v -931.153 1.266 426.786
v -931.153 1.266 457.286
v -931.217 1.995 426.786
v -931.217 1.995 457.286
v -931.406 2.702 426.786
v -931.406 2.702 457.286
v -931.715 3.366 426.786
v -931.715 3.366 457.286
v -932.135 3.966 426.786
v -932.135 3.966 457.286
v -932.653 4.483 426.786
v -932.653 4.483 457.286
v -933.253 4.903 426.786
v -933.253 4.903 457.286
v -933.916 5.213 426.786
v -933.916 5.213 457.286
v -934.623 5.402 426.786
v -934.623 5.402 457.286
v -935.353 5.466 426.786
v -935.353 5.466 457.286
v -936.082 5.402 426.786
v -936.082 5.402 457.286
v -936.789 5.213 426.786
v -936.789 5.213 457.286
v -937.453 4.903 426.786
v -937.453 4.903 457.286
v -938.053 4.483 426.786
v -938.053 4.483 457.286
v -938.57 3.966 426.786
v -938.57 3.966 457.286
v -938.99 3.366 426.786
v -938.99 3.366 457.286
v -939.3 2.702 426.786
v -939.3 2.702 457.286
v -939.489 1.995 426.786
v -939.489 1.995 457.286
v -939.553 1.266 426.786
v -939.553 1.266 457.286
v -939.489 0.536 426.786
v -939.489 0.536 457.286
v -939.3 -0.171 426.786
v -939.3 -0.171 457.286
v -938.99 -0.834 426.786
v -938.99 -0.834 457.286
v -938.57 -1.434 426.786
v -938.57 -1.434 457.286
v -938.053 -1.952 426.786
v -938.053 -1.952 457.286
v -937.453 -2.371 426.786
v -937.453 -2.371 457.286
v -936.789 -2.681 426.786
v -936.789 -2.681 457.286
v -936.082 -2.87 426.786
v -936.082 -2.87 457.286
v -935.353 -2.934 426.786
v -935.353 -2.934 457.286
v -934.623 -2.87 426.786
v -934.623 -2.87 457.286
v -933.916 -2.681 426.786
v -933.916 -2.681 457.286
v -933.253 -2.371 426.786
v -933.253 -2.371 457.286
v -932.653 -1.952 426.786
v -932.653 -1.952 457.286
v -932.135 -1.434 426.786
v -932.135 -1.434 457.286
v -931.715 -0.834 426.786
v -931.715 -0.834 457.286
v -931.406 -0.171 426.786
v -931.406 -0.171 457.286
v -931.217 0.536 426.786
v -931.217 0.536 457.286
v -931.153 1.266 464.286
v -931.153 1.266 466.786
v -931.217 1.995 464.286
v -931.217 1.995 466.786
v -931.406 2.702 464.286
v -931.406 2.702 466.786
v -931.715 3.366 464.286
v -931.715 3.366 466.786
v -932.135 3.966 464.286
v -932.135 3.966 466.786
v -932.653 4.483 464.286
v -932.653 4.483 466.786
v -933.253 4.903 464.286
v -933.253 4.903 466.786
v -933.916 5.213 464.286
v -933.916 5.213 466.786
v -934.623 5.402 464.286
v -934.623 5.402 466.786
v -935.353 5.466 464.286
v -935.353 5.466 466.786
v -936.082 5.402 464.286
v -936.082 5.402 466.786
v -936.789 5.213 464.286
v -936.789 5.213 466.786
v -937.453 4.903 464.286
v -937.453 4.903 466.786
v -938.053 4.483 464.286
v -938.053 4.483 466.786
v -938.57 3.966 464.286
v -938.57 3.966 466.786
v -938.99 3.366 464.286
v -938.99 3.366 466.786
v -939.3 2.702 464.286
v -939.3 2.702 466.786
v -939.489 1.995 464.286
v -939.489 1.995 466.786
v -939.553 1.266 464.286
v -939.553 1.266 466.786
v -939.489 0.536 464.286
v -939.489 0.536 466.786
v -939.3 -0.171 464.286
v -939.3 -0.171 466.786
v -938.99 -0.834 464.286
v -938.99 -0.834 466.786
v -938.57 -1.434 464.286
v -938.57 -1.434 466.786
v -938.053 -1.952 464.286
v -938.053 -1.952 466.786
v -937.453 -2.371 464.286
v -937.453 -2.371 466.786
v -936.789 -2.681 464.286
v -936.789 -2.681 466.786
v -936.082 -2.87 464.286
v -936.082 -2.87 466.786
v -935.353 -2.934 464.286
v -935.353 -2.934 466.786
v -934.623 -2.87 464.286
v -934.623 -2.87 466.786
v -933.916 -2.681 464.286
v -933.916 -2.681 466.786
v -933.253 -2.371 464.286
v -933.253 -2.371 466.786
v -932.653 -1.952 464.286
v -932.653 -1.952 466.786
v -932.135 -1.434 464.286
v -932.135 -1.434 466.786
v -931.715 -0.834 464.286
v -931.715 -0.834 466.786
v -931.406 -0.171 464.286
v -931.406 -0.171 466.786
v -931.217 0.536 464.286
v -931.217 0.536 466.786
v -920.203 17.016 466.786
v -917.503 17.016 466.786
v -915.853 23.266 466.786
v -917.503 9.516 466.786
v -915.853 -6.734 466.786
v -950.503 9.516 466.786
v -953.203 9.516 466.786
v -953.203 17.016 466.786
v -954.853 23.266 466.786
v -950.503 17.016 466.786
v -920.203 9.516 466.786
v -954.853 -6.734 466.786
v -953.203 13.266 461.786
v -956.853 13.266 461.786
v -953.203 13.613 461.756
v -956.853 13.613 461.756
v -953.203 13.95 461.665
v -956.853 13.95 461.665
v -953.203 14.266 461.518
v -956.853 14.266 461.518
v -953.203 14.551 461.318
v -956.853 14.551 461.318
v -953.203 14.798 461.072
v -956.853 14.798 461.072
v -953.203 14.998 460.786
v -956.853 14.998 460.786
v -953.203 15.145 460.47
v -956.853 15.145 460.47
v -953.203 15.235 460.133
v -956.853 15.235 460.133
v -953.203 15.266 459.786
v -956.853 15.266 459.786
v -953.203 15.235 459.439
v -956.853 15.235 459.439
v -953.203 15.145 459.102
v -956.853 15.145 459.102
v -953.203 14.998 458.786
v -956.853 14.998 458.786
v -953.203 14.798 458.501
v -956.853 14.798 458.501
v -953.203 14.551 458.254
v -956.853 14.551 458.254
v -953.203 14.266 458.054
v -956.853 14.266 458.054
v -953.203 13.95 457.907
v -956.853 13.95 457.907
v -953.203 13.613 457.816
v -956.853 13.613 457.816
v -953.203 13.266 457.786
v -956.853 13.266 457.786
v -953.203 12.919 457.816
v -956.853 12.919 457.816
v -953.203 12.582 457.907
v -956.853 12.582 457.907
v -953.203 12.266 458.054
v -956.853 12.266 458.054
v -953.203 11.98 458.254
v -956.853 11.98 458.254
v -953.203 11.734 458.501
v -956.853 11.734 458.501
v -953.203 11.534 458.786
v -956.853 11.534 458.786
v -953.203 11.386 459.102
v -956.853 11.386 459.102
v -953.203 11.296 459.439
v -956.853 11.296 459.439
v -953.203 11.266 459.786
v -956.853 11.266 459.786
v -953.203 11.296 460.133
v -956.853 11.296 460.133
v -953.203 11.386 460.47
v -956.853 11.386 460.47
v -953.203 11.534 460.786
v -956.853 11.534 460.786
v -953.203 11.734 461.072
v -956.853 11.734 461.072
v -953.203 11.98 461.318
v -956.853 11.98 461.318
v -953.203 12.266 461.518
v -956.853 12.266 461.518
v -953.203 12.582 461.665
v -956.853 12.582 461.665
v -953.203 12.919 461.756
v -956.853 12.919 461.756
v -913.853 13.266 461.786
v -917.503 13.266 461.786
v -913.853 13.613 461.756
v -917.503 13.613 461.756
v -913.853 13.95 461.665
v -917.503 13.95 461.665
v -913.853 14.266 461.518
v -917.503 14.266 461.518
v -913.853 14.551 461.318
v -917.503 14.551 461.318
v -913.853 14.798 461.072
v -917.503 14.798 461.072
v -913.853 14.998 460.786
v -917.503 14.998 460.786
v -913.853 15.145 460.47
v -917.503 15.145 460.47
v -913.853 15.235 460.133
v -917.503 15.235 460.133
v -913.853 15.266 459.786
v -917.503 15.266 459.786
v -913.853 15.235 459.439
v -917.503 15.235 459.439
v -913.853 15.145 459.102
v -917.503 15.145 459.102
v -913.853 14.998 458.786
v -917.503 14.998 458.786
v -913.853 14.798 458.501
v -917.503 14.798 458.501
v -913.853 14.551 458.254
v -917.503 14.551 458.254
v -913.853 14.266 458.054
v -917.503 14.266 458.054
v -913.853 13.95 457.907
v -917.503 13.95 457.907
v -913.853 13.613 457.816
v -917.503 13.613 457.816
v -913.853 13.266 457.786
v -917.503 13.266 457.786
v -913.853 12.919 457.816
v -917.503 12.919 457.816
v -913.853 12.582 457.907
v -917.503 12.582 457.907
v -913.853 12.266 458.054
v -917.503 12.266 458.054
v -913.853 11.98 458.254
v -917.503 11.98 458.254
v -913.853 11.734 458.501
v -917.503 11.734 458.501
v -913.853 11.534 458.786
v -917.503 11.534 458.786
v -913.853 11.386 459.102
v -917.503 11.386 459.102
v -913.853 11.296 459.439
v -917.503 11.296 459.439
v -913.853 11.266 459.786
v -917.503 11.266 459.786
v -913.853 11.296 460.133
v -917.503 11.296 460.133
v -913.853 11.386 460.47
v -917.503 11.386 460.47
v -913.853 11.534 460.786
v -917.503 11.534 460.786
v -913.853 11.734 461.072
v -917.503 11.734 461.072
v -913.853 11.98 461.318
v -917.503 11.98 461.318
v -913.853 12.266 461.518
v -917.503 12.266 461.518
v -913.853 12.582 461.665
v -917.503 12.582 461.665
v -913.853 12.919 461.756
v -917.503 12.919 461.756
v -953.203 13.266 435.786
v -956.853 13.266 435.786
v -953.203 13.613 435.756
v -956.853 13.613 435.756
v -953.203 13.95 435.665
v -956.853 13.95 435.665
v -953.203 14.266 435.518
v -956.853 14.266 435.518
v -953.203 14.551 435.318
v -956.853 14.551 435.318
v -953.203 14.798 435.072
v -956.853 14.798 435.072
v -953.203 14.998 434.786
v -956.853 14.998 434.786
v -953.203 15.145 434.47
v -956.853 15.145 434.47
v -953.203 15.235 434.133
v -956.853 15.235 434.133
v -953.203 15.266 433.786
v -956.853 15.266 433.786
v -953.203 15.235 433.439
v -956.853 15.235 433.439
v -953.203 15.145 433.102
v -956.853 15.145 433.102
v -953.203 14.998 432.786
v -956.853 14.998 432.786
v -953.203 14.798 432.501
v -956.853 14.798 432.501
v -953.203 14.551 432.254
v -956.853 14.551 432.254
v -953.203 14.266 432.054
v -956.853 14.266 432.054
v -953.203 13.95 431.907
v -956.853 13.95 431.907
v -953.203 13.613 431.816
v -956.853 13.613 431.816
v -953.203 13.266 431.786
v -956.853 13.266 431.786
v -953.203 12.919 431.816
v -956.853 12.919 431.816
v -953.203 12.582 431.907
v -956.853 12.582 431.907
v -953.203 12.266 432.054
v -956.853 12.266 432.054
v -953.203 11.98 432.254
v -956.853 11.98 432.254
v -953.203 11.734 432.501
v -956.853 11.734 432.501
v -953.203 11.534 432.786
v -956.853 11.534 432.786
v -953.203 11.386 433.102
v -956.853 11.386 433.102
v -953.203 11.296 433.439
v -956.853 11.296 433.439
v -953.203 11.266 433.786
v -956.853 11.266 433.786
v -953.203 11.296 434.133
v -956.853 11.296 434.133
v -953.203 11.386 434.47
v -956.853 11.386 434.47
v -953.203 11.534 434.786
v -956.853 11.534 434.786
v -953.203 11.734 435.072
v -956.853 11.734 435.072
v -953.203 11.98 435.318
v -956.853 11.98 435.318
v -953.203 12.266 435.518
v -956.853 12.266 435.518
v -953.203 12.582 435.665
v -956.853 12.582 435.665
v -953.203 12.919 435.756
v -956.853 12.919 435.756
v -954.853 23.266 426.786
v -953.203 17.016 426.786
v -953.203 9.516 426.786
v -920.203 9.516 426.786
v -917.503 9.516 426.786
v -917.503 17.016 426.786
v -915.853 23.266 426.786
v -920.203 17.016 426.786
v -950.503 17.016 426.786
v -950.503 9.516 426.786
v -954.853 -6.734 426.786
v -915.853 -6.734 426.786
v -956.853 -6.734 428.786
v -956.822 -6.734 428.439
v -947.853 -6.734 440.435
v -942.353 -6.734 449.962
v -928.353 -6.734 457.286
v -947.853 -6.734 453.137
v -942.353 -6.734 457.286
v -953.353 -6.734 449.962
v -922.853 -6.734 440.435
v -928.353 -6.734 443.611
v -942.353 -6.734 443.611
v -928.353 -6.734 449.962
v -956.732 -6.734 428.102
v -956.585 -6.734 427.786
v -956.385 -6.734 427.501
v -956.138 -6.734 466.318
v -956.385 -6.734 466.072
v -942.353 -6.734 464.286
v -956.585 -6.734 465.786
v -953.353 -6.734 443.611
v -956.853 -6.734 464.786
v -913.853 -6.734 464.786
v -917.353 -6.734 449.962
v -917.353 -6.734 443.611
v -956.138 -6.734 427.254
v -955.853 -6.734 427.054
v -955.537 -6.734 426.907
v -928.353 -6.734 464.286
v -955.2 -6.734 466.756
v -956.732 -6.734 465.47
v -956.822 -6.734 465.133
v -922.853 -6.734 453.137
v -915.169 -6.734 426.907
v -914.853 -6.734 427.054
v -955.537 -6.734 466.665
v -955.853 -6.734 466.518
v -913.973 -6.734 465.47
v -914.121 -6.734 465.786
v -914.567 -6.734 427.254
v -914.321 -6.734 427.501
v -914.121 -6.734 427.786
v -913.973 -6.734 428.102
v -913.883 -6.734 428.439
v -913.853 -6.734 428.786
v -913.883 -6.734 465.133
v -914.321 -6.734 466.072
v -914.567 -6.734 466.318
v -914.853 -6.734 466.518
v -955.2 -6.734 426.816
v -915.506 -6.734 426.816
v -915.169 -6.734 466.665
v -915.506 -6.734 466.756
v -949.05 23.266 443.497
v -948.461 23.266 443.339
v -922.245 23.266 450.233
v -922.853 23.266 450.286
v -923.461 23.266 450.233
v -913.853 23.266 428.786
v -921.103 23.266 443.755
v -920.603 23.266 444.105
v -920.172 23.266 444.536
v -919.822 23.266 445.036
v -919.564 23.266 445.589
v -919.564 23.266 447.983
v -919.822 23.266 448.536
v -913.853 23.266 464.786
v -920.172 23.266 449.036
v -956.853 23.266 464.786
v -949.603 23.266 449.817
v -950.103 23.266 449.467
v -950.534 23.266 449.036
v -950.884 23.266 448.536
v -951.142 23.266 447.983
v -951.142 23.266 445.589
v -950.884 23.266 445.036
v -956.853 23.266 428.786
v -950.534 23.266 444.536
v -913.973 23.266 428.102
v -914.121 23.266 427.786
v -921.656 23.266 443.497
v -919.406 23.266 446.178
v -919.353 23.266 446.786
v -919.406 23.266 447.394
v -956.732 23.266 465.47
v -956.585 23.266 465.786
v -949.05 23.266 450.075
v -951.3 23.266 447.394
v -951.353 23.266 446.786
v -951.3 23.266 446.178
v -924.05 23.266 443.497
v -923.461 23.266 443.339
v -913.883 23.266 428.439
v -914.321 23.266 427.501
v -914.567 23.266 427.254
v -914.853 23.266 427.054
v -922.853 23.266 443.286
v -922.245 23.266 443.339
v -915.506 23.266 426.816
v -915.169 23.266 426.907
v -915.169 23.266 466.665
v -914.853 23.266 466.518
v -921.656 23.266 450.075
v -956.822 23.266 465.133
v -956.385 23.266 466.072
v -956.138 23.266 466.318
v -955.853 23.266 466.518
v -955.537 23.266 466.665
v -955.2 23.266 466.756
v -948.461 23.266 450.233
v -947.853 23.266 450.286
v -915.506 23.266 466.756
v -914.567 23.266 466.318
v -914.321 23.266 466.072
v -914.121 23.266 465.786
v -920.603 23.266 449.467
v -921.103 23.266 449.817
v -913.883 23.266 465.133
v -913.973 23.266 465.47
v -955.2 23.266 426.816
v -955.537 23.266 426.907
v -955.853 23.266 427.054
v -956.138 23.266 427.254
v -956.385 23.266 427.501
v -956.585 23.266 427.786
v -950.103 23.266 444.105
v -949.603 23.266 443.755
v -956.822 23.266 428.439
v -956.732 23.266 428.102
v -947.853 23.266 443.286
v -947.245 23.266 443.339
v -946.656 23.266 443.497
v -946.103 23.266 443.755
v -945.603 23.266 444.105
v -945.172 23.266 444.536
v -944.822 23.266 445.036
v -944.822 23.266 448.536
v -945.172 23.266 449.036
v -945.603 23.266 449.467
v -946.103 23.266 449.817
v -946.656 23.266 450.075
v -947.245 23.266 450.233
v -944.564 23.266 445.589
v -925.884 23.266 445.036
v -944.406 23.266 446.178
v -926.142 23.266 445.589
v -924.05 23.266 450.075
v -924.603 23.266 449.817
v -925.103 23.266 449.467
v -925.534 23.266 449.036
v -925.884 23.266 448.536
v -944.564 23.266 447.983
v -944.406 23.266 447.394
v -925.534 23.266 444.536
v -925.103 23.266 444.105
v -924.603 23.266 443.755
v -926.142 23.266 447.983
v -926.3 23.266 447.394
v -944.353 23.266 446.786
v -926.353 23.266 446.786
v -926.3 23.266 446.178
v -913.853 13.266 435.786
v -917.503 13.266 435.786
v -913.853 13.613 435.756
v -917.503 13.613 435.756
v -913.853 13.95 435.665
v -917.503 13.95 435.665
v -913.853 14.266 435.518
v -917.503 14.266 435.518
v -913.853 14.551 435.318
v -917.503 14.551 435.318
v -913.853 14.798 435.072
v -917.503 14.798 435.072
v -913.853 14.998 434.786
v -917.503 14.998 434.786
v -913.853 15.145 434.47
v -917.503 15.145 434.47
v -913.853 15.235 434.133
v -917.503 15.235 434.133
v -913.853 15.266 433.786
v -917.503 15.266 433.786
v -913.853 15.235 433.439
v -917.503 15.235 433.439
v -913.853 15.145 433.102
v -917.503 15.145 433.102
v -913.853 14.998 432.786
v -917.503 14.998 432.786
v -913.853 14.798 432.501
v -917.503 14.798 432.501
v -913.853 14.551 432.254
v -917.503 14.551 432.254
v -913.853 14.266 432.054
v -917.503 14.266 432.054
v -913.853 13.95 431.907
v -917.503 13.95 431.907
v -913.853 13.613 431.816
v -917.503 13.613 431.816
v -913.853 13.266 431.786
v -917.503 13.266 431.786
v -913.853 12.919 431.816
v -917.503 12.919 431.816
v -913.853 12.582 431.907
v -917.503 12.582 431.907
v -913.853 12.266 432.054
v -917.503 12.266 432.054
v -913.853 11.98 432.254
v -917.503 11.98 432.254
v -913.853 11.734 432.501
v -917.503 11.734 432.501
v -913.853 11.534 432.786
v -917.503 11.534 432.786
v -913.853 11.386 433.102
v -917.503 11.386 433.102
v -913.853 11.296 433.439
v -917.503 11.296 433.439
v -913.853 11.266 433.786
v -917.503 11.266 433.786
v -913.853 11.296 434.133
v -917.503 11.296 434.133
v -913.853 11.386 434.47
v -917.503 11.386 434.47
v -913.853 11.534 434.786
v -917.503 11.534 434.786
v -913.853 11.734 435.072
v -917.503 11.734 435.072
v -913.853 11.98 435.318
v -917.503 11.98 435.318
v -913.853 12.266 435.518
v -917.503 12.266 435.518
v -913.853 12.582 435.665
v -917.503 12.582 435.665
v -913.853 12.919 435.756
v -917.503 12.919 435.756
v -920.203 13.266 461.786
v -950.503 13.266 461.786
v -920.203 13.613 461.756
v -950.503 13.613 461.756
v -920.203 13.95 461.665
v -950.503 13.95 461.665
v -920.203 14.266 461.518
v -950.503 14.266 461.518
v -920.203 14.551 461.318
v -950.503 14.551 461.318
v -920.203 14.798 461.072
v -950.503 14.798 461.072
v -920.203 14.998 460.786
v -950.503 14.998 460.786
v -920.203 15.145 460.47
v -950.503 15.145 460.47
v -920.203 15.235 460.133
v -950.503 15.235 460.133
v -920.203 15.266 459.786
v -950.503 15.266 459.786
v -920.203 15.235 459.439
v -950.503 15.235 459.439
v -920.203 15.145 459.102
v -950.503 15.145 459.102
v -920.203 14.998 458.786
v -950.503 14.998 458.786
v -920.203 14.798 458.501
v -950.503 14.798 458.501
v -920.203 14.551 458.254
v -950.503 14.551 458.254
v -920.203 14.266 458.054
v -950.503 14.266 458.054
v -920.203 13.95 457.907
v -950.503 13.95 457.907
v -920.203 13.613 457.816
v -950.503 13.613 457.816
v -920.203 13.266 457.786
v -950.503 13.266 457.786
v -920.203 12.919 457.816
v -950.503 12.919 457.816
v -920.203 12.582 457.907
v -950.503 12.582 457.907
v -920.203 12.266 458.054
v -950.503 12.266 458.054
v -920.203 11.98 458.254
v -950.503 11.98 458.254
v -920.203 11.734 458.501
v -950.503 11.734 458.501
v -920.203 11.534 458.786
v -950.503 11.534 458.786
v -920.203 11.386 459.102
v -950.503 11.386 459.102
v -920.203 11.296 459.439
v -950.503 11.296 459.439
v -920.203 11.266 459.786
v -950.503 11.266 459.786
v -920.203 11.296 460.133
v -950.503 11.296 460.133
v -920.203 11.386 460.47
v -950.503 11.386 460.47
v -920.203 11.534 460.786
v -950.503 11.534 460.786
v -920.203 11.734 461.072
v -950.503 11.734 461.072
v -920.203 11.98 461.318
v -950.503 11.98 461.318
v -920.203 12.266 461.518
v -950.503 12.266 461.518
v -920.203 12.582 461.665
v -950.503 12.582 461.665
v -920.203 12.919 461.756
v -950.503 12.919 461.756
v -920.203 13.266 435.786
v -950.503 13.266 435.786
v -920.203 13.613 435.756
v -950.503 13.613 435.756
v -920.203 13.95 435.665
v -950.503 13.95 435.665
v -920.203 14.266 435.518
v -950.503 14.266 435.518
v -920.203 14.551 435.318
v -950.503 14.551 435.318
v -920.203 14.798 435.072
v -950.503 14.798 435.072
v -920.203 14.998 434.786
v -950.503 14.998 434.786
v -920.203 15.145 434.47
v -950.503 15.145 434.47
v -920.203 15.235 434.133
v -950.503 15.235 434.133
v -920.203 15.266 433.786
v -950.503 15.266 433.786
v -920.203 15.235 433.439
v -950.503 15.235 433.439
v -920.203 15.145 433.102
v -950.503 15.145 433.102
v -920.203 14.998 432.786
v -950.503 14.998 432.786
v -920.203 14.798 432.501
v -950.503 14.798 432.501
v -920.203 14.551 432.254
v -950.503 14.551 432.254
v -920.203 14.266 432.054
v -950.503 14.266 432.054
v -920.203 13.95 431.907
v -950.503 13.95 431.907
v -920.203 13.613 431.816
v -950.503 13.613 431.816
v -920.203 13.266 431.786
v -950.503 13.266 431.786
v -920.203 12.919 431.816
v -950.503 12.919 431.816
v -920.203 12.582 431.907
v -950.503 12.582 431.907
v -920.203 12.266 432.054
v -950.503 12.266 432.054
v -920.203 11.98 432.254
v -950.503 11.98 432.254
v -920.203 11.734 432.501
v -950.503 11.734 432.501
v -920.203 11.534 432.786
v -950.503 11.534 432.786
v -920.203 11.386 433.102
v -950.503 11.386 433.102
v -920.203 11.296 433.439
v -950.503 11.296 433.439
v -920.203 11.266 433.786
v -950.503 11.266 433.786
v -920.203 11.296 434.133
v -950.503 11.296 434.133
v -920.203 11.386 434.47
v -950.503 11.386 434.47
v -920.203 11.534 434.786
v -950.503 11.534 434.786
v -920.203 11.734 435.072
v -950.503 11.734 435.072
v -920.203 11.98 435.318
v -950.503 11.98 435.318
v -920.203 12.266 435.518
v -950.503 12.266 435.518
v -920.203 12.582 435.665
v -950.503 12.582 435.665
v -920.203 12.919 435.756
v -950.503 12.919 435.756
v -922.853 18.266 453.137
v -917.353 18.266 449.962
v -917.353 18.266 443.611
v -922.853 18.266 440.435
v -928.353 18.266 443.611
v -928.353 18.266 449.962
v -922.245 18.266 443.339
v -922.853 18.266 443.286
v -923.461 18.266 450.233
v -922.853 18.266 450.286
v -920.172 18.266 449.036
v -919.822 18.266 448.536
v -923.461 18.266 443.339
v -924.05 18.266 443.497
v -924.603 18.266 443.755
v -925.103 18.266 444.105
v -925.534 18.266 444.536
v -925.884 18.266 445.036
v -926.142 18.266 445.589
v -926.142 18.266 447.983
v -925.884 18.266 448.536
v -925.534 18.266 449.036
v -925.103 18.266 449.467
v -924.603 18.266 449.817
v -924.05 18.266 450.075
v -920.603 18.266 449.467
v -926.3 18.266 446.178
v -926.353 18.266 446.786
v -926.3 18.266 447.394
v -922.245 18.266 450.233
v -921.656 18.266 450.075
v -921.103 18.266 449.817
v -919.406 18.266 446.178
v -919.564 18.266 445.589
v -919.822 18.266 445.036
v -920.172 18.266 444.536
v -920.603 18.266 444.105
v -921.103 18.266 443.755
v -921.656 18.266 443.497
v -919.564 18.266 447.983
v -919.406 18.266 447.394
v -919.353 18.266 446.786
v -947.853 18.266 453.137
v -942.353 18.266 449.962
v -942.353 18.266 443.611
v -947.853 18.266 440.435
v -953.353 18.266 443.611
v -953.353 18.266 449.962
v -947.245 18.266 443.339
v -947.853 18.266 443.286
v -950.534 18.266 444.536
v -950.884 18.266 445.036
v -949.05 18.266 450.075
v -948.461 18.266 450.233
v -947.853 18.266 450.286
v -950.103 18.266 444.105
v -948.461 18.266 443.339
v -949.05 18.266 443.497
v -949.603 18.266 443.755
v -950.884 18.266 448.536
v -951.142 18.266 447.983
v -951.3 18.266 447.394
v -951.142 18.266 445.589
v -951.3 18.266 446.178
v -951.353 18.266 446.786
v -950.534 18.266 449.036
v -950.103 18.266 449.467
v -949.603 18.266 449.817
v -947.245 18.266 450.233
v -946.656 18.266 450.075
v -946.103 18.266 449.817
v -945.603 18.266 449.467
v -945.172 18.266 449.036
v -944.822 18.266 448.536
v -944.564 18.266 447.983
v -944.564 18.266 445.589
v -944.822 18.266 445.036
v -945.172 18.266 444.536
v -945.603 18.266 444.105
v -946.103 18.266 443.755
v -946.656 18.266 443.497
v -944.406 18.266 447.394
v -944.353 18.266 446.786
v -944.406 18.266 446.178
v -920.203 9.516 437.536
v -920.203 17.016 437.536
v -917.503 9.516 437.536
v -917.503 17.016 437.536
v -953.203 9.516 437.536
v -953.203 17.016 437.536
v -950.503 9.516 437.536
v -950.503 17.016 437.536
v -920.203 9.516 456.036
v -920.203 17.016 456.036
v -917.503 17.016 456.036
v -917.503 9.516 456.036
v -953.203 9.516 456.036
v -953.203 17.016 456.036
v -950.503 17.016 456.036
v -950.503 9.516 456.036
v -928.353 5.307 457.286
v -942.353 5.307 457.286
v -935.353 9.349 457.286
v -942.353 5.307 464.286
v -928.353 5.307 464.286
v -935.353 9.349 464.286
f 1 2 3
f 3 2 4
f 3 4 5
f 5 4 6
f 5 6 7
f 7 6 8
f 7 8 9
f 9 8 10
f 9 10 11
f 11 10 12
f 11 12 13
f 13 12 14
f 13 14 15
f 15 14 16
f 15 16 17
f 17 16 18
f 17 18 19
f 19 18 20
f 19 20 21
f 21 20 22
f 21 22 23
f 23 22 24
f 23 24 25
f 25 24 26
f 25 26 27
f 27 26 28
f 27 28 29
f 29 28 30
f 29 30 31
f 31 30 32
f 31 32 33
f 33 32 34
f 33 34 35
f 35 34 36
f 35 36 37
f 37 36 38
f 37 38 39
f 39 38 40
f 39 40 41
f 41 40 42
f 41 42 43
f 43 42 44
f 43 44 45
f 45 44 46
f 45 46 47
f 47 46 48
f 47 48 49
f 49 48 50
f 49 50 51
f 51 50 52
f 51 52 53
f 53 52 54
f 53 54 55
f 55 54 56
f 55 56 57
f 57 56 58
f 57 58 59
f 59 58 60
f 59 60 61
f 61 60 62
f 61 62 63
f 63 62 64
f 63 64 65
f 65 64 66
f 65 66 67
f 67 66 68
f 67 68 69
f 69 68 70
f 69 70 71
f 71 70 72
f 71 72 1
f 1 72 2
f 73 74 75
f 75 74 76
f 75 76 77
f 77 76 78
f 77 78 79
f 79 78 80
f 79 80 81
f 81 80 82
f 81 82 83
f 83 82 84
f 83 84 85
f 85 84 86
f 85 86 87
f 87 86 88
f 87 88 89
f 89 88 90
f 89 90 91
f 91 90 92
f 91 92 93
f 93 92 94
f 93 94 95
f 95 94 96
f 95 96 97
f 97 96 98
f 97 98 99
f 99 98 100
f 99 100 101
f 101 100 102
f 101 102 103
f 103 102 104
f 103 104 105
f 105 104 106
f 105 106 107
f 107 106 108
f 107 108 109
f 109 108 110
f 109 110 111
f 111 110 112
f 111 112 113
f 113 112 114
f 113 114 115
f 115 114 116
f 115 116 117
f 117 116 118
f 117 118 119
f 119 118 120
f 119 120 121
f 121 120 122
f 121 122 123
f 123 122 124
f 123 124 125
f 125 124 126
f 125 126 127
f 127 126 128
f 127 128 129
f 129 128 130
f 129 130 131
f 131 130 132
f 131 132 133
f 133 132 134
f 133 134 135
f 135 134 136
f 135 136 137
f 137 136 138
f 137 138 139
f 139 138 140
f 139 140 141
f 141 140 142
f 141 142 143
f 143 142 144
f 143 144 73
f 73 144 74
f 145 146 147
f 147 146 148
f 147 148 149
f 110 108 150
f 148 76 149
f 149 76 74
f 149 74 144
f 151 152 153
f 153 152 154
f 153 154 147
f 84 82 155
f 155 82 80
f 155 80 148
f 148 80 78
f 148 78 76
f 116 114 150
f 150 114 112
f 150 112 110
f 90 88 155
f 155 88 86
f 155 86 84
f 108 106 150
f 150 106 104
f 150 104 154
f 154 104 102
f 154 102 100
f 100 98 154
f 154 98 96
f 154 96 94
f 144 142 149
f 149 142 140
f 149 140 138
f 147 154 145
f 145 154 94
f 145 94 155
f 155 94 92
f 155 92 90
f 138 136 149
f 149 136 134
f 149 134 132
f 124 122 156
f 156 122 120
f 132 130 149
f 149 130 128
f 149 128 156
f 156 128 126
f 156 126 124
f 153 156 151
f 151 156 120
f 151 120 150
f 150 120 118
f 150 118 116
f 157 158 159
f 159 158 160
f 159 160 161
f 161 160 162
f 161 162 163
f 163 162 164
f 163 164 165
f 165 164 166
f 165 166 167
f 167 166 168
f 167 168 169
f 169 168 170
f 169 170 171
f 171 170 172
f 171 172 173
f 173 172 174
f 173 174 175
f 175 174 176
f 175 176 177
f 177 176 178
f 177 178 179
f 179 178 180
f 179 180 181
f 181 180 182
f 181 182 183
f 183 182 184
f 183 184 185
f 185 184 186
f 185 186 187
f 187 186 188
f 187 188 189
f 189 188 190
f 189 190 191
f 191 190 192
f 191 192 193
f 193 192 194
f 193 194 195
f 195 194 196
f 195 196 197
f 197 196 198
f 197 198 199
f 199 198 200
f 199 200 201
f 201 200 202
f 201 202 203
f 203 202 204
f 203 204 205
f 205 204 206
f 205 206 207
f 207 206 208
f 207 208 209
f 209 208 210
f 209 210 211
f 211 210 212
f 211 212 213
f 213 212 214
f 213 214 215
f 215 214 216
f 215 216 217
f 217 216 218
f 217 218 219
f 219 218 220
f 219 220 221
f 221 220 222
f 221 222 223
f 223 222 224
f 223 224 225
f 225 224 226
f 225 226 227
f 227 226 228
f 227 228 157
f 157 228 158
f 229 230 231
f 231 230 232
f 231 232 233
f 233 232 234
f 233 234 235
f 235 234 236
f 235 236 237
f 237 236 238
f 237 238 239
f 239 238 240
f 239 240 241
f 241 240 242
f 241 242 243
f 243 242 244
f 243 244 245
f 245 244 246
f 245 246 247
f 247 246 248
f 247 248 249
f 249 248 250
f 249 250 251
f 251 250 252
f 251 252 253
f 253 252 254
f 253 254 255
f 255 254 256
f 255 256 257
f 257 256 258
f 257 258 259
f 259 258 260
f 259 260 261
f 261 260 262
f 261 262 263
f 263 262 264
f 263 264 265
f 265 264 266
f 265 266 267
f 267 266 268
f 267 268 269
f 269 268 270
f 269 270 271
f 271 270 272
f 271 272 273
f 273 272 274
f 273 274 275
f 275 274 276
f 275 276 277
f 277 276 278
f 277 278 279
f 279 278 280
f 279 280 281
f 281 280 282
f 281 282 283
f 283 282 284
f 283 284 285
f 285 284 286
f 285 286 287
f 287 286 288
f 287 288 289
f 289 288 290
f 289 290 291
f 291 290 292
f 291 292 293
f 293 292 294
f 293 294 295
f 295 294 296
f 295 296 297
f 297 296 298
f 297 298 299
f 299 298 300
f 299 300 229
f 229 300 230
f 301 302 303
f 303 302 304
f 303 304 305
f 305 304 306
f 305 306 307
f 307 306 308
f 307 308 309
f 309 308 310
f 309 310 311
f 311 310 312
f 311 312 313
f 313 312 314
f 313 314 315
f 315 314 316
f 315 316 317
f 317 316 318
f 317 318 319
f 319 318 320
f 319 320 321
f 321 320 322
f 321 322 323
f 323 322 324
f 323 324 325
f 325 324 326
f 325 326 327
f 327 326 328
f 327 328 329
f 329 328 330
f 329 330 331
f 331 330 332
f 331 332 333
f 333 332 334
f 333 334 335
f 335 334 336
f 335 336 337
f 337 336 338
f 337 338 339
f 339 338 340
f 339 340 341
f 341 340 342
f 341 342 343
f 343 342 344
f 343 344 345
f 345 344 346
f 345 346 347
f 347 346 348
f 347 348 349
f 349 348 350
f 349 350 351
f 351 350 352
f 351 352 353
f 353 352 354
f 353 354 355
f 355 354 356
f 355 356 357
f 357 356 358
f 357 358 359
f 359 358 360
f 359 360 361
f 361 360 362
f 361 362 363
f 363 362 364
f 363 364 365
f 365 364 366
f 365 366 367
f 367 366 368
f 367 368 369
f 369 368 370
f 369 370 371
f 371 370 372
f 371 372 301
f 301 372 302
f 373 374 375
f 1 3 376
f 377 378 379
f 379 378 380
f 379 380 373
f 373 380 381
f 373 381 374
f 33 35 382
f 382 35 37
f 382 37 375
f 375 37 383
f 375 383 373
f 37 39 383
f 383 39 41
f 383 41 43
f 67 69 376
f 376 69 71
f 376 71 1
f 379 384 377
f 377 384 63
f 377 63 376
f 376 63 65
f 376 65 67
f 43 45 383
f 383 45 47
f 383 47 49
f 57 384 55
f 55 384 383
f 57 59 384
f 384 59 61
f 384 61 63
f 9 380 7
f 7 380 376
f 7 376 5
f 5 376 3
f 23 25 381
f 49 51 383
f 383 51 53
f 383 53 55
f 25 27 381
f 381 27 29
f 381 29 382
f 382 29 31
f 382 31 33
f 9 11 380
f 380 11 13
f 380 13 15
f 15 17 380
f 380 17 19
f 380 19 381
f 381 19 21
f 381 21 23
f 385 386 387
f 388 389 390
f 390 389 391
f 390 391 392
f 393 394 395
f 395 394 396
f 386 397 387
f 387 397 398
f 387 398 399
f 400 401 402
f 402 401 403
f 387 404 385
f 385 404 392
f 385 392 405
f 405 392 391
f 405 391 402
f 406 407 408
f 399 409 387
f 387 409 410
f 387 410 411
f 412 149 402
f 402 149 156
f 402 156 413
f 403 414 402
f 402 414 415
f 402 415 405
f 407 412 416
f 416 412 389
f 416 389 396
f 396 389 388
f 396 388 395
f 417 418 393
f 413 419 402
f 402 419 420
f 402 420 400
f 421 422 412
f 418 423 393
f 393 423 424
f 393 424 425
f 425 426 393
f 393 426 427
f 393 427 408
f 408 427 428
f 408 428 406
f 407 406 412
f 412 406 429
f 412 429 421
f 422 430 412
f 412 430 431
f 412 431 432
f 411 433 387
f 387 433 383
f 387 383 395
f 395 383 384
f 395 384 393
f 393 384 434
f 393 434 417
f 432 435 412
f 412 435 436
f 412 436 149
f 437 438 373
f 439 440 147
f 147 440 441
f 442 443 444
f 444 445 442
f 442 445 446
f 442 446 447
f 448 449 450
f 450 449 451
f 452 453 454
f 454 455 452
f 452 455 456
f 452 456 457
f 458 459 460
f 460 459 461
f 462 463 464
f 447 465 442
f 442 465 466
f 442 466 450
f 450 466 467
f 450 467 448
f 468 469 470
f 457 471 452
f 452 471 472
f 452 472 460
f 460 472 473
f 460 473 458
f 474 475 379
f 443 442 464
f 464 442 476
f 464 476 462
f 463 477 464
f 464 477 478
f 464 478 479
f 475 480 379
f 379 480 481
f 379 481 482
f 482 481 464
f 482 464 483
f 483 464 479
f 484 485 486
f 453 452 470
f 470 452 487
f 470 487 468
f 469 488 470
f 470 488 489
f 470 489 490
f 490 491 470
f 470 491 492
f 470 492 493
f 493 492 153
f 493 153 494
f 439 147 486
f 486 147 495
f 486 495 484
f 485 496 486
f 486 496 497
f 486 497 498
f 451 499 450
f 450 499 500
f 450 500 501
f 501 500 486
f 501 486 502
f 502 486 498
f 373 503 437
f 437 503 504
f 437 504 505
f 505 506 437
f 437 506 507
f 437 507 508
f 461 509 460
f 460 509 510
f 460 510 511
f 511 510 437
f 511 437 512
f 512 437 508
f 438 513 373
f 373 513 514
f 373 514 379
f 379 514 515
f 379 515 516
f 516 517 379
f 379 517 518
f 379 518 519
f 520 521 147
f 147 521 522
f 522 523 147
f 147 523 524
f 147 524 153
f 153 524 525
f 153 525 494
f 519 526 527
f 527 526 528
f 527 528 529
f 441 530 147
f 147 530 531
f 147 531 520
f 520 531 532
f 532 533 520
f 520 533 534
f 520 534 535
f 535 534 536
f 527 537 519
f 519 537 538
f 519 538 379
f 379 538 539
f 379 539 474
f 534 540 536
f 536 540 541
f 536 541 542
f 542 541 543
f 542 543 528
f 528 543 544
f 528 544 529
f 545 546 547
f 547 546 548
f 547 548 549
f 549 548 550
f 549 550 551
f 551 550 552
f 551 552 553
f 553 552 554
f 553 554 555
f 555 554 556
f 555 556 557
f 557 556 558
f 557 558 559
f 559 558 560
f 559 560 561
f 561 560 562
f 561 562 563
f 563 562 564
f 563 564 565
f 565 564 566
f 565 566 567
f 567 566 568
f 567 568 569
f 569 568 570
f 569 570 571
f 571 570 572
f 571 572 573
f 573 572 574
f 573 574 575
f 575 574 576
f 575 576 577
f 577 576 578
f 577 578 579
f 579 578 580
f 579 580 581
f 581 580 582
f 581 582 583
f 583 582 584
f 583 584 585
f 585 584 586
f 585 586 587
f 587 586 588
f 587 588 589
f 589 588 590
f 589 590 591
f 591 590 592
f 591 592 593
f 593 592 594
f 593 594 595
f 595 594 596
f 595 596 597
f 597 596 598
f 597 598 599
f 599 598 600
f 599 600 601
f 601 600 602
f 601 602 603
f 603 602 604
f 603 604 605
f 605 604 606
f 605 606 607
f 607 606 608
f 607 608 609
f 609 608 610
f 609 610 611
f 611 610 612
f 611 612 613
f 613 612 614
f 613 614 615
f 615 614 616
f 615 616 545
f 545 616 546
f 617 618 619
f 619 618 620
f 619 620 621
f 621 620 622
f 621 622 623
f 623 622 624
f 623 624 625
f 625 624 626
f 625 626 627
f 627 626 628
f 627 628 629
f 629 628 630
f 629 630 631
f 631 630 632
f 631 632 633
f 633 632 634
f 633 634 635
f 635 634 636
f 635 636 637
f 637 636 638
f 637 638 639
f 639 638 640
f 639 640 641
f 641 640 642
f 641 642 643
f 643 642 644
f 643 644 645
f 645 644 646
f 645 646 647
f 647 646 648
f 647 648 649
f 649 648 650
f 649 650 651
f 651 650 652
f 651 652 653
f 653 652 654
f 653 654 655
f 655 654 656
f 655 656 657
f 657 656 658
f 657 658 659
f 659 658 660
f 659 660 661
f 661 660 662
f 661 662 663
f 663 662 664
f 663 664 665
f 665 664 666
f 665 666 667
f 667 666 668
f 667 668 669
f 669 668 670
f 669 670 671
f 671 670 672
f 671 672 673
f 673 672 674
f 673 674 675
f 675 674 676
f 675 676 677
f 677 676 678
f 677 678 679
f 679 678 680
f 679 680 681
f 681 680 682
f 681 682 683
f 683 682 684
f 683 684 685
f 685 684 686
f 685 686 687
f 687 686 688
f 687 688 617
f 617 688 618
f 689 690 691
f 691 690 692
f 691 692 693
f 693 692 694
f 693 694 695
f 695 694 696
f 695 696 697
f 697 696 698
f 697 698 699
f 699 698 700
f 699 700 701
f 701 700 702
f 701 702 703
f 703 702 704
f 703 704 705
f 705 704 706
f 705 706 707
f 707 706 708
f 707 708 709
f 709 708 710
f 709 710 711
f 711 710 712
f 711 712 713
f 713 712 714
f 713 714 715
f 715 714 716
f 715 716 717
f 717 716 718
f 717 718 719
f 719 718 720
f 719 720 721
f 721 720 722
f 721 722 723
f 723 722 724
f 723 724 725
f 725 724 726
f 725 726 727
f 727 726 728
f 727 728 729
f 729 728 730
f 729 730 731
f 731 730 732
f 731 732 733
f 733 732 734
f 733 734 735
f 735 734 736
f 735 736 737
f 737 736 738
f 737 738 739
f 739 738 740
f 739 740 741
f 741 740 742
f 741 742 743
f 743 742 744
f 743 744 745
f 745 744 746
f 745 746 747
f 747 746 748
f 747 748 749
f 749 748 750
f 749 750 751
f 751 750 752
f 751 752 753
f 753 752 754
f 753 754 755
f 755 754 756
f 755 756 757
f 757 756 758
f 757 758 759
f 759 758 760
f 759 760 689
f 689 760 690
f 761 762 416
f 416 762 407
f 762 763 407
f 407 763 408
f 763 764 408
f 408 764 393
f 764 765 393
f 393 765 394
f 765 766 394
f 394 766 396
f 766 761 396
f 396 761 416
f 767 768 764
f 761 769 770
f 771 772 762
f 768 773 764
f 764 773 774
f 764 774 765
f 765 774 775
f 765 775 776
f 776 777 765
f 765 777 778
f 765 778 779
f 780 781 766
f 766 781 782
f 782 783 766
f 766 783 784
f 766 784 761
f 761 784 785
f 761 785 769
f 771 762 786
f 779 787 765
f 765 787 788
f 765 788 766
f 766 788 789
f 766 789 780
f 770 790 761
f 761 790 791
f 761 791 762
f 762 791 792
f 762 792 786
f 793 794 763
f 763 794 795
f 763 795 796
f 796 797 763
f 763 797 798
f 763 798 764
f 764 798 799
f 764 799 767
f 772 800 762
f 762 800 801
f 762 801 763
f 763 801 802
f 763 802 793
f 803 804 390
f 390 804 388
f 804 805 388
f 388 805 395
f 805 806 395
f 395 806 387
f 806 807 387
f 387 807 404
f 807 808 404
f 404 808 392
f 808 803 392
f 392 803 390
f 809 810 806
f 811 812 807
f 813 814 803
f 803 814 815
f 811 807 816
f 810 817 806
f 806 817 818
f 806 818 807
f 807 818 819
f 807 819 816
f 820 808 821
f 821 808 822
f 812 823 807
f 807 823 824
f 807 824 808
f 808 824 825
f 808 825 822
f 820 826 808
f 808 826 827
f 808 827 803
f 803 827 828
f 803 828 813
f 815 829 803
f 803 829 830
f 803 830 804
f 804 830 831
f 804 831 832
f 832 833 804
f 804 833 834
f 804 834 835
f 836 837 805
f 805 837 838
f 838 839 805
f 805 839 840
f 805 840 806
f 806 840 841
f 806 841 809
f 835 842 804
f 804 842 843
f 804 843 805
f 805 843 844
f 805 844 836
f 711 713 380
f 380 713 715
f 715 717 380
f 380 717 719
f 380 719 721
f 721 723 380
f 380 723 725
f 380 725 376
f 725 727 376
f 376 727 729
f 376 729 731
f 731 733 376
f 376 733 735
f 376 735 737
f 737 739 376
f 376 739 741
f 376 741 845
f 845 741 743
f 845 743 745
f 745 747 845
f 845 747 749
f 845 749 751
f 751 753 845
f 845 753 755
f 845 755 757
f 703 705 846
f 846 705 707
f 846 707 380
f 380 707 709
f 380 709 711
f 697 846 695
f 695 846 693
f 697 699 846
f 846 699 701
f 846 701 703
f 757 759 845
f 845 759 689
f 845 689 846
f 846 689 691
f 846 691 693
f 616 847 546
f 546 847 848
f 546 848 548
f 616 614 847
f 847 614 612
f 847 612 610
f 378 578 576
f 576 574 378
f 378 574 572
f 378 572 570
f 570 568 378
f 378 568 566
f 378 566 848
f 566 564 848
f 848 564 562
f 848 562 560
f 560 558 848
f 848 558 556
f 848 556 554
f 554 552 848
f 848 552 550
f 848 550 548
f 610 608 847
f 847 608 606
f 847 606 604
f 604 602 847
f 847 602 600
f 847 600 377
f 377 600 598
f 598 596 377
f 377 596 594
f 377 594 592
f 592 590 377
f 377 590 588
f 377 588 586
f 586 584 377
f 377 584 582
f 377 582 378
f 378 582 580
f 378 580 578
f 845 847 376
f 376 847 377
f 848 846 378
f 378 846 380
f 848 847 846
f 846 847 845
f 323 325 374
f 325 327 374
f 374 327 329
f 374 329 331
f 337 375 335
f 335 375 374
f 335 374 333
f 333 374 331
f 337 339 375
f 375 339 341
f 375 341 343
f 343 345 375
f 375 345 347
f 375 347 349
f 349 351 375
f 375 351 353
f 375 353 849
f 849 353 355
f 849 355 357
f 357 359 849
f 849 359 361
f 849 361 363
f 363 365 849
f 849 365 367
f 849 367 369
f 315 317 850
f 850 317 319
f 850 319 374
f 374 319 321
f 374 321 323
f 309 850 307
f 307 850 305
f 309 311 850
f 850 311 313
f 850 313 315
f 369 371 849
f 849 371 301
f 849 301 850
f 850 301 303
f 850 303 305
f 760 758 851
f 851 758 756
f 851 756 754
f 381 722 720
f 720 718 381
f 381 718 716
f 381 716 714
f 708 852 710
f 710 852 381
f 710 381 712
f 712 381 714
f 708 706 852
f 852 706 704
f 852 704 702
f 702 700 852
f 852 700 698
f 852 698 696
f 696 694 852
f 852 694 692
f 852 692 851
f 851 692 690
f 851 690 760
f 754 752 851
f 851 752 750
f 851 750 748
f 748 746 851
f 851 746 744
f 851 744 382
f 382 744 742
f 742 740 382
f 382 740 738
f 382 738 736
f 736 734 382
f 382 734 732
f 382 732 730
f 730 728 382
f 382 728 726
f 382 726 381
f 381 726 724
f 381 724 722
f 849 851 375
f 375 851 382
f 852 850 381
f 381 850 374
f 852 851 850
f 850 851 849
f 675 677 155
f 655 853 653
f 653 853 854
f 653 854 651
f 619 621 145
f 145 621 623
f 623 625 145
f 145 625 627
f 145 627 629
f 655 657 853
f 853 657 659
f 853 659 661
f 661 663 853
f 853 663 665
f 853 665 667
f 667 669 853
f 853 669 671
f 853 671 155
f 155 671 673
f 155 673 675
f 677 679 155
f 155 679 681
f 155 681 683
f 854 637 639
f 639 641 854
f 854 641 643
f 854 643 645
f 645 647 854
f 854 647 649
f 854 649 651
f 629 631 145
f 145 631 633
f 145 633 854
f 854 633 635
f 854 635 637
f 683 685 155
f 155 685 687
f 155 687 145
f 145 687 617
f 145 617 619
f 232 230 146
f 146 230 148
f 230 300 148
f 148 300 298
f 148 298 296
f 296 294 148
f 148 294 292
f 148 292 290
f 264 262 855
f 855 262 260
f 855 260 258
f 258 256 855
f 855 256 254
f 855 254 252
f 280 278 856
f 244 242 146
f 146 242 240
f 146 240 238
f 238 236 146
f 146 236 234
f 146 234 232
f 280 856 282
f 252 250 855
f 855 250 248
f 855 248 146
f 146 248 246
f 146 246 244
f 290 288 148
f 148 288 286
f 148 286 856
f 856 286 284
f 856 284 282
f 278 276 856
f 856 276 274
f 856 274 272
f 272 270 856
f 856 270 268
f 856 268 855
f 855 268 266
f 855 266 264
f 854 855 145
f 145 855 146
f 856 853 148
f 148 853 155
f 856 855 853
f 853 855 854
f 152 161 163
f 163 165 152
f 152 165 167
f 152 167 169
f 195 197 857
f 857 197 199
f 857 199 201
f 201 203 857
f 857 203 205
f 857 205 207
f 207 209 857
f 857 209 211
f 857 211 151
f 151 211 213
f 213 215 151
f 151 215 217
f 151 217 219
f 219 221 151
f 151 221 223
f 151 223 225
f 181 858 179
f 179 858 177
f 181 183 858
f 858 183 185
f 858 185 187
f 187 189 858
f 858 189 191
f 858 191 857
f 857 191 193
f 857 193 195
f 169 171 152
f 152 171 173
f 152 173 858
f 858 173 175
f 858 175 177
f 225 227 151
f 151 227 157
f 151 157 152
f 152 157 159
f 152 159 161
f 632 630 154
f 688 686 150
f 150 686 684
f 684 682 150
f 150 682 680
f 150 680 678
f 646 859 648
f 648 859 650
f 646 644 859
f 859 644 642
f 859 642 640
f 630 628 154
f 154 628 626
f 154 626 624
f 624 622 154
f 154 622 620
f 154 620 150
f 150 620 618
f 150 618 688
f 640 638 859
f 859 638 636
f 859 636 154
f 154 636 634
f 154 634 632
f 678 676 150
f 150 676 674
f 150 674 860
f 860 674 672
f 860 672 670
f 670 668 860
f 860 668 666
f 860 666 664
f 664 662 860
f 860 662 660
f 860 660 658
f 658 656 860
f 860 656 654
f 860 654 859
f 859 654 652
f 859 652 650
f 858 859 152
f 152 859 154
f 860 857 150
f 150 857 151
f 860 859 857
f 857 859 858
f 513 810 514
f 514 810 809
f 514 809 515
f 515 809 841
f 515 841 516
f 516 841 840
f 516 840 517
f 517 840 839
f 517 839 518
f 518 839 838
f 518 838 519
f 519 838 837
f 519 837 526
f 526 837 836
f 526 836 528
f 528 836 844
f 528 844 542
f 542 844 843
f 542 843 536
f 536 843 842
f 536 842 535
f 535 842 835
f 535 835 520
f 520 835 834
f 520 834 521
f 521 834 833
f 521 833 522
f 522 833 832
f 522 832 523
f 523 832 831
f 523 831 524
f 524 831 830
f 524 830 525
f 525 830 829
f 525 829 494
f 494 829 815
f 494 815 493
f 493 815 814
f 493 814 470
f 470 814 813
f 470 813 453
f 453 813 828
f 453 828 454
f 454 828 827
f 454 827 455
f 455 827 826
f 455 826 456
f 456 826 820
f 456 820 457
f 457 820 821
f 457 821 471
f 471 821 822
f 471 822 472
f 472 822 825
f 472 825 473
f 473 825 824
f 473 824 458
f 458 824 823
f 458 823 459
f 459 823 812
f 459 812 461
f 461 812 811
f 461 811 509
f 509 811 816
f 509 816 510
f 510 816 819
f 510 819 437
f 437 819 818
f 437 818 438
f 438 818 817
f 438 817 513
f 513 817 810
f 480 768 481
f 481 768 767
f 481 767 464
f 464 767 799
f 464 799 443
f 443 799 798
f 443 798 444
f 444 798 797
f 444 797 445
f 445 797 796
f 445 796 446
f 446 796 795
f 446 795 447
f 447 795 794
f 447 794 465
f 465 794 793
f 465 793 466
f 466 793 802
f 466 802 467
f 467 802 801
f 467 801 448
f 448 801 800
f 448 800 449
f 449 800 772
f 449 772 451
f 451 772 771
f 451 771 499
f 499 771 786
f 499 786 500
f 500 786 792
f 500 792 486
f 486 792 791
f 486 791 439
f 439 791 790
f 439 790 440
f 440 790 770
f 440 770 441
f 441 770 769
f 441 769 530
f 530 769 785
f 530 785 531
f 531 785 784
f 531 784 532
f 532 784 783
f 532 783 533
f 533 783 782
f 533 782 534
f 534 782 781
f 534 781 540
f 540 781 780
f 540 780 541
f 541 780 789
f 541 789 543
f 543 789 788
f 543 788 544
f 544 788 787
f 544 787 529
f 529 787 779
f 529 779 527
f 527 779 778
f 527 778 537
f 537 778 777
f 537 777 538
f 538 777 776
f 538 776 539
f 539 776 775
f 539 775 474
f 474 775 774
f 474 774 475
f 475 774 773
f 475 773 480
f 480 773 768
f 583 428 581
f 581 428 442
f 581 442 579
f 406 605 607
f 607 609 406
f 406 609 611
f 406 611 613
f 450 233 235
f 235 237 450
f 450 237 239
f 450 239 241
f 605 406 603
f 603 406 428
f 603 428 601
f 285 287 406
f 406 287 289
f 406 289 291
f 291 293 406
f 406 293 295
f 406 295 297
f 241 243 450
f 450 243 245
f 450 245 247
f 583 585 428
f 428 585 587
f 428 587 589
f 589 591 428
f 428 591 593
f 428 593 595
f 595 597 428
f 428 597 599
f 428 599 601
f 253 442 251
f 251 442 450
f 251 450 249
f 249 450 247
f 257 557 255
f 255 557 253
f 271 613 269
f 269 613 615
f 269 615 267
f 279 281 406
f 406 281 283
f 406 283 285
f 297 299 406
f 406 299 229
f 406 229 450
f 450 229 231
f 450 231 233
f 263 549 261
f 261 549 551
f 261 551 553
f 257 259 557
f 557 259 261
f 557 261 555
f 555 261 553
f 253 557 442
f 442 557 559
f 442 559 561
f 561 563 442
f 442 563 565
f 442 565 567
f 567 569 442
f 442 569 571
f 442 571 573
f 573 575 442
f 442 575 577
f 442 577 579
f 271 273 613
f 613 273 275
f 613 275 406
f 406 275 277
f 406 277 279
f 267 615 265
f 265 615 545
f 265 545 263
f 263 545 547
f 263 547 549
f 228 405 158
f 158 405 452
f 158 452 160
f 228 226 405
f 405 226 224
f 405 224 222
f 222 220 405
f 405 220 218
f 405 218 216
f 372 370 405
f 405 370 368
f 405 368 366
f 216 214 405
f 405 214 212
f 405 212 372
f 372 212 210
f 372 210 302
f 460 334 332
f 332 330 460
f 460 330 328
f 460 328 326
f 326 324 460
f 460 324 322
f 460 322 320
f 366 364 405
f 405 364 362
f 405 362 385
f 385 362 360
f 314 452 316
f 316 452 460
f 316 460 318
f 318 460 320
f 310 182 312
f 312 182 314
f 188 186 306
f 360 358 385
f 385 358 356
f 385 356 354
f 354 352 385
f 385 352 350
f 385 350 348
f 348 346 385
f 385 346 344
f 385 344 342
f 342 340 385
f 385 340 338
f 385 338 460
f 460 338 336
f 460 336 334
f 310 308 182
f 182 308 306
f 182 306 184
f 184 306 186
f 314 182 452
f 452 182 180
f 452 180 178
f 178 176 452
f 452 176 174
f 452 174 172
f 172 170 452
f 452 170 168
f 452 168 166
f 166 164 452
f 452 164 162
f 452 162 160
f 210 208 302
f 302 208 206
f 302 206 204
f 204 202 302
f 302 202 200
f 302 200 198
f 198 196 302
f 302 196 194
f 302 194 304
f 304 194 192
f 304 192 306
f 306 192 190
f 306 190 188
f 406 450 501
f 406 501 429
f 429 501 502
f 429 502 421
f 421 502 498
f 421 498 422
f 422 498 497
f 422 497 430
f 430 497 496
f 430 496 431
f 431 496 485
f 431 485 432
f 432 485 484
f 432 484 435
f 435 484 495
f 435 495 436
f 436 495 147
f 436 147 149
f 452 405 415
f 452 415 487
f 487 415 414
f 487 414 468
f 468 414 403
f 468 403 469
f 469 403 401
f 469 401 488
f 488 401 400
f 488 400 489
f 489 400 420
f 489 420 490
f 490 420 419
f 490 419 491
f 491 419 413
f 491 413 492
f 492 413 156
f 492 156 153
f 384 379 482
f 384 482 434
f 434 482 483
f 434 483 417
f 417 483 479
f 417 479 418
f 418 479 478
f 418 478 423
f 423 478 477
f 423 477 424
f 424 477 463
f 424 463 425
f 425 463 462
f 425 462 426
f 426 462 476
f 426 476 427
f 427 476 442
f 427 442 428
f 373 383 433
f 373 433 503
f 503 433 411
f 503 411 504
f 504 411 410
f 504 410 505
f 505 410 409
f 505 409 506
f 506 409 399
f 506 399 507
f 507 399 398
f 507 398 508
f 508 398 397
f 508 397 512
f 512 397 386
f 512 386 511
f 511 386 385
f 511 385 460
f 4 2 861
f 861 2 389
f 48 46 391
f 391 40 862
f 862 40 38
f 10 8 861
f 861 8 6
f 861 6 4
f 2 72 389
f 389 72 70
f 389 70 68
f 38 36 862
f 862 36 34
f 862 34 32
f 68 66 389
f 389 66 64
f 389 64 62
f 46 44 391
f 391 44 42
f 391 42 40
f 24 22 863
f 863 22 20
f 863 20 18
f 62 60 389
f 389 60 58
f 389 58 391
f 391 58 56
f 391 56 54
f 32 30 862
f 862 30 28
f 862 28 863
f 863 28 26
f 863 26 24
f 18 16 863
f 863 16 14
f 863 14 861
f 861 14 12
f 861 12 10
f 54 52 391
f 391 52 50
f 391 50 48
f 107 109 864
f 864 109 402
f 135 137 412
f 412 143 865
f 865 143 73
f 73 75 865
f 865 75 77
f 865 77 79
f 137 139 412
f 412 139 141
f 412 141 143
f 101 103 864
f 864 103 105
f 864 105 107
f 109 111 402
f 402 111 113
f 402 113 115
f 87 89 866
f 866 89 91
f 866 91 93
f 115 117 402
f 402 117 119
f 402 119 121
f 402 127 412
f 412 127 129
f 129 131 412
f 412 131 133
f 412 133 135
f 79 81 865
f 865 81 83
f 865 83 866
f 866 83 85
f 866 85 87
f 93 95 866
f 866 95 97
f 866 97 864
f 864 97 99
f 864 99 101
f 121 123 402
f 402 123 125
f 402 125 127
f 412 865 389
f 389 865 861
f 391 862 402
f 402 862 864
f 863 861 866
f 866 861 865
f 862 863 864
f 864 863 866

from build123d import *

# Parameters (mm, degrees)
SKETCH1_W            = 45
SKETCH1_H            = 40
BOSS_EXTRUDE1_DEPTH  = 30
CUT_EXTRUDE1_DEPTH   = 25
SKETCH3_R            = 2
CUT_EXTRUDE2_DEPTH   = 959.969914124
SKETCH7_R            = 2
CUT_EXTRUDE4_DEPTH   = 470.526936912
SKETCH9_W            = 2.7
SKETCH9_H            = 7.5
CUT_EXTRUDE5_DEPTH   = 10.75
CUT_EXTRUDE6_START   = -40
SKETCH9_2_W          = 2.7
SKETCH9_2_H          = 7.5
CUT_EXTRUDE6_DEPTH   = 10.75
SKETCH10_R           = 3.5
CUT_EXTRUDE9_DEPTH   = 1066.96024555
SKETCH13_R           = 4.2
CUT_EXTRUDE10_DEPTH  = 959.969914124
SKETCH14_OUTSIDE_W   = 60.454
SKETCH14_OUTSIDE_H   = 45.454
SKETCH14_OUTSIDE_W_2 = 43
SKETCH14_OUTSIDE_H_2 = 30
CUT_EXTRUDE11_DEPTH  = 959.969914124
FILLET1_R            = 2
SKETCH15_W           = 14
SKETCH15_H           = 7
CUT_EXTRUDE12_DEPTH  = 10
CUT_EXTRUDE13_DEPTH  = 7


with BuildPart() as part:
    # Sketch1 → Boss-Extrude1 (new body)
    with BuildSketch(Plane.XZ.offset(-23.265807416)):
        with Locations((-935.352806229, 446.786082367)):
            Rectangle(SKETCH1_W, SKETCH1_H)
    extrude(amount=BOSS_EXTRUDE1_DEPTH)

    # Sketch2 → Cut-Extrude1 (cut)
    with BuildSketch(Plane.XZ.offset(6.734192584)):
        Polygon((-922.852806229, 453.136935328), (-928.352806229, 449.961508847), (-928.352806229, 443.610655886), (-922.852806229, 440.435229406), (-917.352806229, 443.610655886), (-917.352806229, 449.961508847), align=None)
        Polygon((-947.852806229, 453.136935328), (-953.352806229, 449.961508847), (-953.352806229, 443.610655886), (-947.852806229, 440.435229406), (-942.352806229, 443.610655886), (-942.352806229, 449.961508847), align=None)
    extrude(amount=-CUT_EXTRUDE1_DEPTH, mode=Mode.SUBTRACT)

    # Sketch3 → Cut-Extrude2 (cut, through all)
    with BuildSketch(Plane(origin=(0, 0, 426.786082367), x_dir=(-1, 0, 0), z_dir=(0, 0, -1))):
        with Locations((935.352806229, 1.265807416)):
            Circle(SKETCH3_R)
    extrude(amount=-CUT_EXTRUDE2_DEPTH, mode=Mode.SUBTRACT)

    # Sketch7 → Cut-Extrude4 (cut, through all)
    with BuildSketch(Plane.ZY.offset(957.852806229)):
        with Locations((433.786082367, 13.265807416)):
            Circle(SKETCH7_R)
        with Locations((459.786082367, 13.265807416)):
            Circle(SKETCH7_R)
    extrude(amount=-CUT_EXTRUDE4_DEPTH, mode=Mode.SUBTRACT)

    # Sketch9 → Cut-Extrude5 (cut)
    with BuildSketch(Plane(origin=(0, 0, 426.786082367), x_dir=(-1, 0, 0), z_dir=(0, 0, -1))):
        with Locations((918.852806229, 13.265807416)):
            Rectangle(SKETCH9_W, SKETCH9_H)
        with Locations((951.852806229, 13.265807416)):
            Rectangle(SKETCH9_W, SKETCH9_H)
    extrude(amount=-CUT_EXTRUDE5_DEPTH, mode=Mode.SUBTRACT)

    # Sketch9<2> → Cut-Extrude6 (cut)
    with BuildSketch(Plane(origin=(0, 0, 426.786082367), x_dir=(-1, 0, 0), z_dir=(0, 0, -1)).offset(CUT_EXTRUDE6_START)):
        with Locations((918.852806229, 13.265807416)):
            Rectangle(SKETCH9_2_W, SKETCH9_2_H)
        with Locations((951.852806229, 13.265807416)):
            Rectangle(SKETCH9_2_W, SKETCH9_2_H)
    extrude(amount=CUT_EXTRUDE6_DEPTH, mode=Mode.SUBTRACT)

    # Sketch10 → Cut-Extrude9 (cut, through all)
    with BuildSketch(Plane.XZ.offset(6.734192584)):
        with Locations(Location((-947.852806229, 446.786082367, 0), (0, 0, 270))):
            Circle(SKETCH10_R)
        with Locations(Location((-922.852806229, 446.786082367, 0), (0, 0, 270))):
            Circle(SKETCH10_R)
    extrude(amount=-CUT_EXTRUDE9_DEPTH, mode=Mode.SUBTRACT)

    # Sketch13 → Cut-Extrude10 (cut, through all)
    with BuildSketch(Plane.XY.offset(466.786082367)):
        with Locations((-935.352806229, 1.265807416)):
            Circle(SKETCH13_R)
    extrude(amount=-CUT_EXTRUDE10_DEPTH, mode=Mode.SUBTRACT)

    # Sketch14 outside → Cut-Extrude11 (cut, through all)
    with BuildSketch(Plane(origin=(0, 0, 426.786082367), x_dir=(-1, 0, 0), z_dir=(0, 0, -1))):
        with Locations((935.353, 8.266)):
            Rectangle(SKETCH14_OUTSIDE_W, SKETCH14_OUTSIDE_H)
        with Locations((935.352806229, 8.265807416)):
            Rectangle(SKETCH14_OUTSIDE_W_2, SKETCH14_OUTSIDE_H_2, mode=Mode.SUBTRACT)
    extrude(amount=-CUT_EXTRUDE11_DEPTH, mode=Mode.SUBTRACT)

    # Fillet1
    fillet1_edges = [part.edges().sort_by_distance(p)[0] for p in [
        (-956.852806229, 8.265807416, 466.786082367),
        (-956.852806229, 8.265807416, 426.786082367),
        (-913.852806229, 8.265807416, 426.786082367),
        (-913.852806229, 8.265807416, 466.786082367),
    ]]
    fillet(fillet1_edges, radius=FILLET1_R)

    # Sketch15 → Cut-Extrude12 (cut)
    with BuildSketch(Plane.XZ.offset(6.734192584)):
        with Locations((-935.352806229, 460.786082367)):
            Rectangle(SKETCH15_W, SKETCH15_H)
    extrude(amount=-CUT_EXTRUDE12_DEPTH, mode=Mode.SUBTRACT)

    # Sketch16 → Cut-Extrude13 (cut)
    with BuildSketch(Plane.XY.offset(457.286082367)):
        Polygon((-928.352806229, 5.3072593), (-935.352806229, 9.348711184), (-942.352806229, 5.3072593), (-942.352806229, -2.775644469), (-935.352806229, -6.817096353), (-928.352806229, -2.775644469), align=None)
    extrude(amount=CUT_EXTRUDE13_DEPTH, mode=Mode.SUBTRACT)


solid = part.part
